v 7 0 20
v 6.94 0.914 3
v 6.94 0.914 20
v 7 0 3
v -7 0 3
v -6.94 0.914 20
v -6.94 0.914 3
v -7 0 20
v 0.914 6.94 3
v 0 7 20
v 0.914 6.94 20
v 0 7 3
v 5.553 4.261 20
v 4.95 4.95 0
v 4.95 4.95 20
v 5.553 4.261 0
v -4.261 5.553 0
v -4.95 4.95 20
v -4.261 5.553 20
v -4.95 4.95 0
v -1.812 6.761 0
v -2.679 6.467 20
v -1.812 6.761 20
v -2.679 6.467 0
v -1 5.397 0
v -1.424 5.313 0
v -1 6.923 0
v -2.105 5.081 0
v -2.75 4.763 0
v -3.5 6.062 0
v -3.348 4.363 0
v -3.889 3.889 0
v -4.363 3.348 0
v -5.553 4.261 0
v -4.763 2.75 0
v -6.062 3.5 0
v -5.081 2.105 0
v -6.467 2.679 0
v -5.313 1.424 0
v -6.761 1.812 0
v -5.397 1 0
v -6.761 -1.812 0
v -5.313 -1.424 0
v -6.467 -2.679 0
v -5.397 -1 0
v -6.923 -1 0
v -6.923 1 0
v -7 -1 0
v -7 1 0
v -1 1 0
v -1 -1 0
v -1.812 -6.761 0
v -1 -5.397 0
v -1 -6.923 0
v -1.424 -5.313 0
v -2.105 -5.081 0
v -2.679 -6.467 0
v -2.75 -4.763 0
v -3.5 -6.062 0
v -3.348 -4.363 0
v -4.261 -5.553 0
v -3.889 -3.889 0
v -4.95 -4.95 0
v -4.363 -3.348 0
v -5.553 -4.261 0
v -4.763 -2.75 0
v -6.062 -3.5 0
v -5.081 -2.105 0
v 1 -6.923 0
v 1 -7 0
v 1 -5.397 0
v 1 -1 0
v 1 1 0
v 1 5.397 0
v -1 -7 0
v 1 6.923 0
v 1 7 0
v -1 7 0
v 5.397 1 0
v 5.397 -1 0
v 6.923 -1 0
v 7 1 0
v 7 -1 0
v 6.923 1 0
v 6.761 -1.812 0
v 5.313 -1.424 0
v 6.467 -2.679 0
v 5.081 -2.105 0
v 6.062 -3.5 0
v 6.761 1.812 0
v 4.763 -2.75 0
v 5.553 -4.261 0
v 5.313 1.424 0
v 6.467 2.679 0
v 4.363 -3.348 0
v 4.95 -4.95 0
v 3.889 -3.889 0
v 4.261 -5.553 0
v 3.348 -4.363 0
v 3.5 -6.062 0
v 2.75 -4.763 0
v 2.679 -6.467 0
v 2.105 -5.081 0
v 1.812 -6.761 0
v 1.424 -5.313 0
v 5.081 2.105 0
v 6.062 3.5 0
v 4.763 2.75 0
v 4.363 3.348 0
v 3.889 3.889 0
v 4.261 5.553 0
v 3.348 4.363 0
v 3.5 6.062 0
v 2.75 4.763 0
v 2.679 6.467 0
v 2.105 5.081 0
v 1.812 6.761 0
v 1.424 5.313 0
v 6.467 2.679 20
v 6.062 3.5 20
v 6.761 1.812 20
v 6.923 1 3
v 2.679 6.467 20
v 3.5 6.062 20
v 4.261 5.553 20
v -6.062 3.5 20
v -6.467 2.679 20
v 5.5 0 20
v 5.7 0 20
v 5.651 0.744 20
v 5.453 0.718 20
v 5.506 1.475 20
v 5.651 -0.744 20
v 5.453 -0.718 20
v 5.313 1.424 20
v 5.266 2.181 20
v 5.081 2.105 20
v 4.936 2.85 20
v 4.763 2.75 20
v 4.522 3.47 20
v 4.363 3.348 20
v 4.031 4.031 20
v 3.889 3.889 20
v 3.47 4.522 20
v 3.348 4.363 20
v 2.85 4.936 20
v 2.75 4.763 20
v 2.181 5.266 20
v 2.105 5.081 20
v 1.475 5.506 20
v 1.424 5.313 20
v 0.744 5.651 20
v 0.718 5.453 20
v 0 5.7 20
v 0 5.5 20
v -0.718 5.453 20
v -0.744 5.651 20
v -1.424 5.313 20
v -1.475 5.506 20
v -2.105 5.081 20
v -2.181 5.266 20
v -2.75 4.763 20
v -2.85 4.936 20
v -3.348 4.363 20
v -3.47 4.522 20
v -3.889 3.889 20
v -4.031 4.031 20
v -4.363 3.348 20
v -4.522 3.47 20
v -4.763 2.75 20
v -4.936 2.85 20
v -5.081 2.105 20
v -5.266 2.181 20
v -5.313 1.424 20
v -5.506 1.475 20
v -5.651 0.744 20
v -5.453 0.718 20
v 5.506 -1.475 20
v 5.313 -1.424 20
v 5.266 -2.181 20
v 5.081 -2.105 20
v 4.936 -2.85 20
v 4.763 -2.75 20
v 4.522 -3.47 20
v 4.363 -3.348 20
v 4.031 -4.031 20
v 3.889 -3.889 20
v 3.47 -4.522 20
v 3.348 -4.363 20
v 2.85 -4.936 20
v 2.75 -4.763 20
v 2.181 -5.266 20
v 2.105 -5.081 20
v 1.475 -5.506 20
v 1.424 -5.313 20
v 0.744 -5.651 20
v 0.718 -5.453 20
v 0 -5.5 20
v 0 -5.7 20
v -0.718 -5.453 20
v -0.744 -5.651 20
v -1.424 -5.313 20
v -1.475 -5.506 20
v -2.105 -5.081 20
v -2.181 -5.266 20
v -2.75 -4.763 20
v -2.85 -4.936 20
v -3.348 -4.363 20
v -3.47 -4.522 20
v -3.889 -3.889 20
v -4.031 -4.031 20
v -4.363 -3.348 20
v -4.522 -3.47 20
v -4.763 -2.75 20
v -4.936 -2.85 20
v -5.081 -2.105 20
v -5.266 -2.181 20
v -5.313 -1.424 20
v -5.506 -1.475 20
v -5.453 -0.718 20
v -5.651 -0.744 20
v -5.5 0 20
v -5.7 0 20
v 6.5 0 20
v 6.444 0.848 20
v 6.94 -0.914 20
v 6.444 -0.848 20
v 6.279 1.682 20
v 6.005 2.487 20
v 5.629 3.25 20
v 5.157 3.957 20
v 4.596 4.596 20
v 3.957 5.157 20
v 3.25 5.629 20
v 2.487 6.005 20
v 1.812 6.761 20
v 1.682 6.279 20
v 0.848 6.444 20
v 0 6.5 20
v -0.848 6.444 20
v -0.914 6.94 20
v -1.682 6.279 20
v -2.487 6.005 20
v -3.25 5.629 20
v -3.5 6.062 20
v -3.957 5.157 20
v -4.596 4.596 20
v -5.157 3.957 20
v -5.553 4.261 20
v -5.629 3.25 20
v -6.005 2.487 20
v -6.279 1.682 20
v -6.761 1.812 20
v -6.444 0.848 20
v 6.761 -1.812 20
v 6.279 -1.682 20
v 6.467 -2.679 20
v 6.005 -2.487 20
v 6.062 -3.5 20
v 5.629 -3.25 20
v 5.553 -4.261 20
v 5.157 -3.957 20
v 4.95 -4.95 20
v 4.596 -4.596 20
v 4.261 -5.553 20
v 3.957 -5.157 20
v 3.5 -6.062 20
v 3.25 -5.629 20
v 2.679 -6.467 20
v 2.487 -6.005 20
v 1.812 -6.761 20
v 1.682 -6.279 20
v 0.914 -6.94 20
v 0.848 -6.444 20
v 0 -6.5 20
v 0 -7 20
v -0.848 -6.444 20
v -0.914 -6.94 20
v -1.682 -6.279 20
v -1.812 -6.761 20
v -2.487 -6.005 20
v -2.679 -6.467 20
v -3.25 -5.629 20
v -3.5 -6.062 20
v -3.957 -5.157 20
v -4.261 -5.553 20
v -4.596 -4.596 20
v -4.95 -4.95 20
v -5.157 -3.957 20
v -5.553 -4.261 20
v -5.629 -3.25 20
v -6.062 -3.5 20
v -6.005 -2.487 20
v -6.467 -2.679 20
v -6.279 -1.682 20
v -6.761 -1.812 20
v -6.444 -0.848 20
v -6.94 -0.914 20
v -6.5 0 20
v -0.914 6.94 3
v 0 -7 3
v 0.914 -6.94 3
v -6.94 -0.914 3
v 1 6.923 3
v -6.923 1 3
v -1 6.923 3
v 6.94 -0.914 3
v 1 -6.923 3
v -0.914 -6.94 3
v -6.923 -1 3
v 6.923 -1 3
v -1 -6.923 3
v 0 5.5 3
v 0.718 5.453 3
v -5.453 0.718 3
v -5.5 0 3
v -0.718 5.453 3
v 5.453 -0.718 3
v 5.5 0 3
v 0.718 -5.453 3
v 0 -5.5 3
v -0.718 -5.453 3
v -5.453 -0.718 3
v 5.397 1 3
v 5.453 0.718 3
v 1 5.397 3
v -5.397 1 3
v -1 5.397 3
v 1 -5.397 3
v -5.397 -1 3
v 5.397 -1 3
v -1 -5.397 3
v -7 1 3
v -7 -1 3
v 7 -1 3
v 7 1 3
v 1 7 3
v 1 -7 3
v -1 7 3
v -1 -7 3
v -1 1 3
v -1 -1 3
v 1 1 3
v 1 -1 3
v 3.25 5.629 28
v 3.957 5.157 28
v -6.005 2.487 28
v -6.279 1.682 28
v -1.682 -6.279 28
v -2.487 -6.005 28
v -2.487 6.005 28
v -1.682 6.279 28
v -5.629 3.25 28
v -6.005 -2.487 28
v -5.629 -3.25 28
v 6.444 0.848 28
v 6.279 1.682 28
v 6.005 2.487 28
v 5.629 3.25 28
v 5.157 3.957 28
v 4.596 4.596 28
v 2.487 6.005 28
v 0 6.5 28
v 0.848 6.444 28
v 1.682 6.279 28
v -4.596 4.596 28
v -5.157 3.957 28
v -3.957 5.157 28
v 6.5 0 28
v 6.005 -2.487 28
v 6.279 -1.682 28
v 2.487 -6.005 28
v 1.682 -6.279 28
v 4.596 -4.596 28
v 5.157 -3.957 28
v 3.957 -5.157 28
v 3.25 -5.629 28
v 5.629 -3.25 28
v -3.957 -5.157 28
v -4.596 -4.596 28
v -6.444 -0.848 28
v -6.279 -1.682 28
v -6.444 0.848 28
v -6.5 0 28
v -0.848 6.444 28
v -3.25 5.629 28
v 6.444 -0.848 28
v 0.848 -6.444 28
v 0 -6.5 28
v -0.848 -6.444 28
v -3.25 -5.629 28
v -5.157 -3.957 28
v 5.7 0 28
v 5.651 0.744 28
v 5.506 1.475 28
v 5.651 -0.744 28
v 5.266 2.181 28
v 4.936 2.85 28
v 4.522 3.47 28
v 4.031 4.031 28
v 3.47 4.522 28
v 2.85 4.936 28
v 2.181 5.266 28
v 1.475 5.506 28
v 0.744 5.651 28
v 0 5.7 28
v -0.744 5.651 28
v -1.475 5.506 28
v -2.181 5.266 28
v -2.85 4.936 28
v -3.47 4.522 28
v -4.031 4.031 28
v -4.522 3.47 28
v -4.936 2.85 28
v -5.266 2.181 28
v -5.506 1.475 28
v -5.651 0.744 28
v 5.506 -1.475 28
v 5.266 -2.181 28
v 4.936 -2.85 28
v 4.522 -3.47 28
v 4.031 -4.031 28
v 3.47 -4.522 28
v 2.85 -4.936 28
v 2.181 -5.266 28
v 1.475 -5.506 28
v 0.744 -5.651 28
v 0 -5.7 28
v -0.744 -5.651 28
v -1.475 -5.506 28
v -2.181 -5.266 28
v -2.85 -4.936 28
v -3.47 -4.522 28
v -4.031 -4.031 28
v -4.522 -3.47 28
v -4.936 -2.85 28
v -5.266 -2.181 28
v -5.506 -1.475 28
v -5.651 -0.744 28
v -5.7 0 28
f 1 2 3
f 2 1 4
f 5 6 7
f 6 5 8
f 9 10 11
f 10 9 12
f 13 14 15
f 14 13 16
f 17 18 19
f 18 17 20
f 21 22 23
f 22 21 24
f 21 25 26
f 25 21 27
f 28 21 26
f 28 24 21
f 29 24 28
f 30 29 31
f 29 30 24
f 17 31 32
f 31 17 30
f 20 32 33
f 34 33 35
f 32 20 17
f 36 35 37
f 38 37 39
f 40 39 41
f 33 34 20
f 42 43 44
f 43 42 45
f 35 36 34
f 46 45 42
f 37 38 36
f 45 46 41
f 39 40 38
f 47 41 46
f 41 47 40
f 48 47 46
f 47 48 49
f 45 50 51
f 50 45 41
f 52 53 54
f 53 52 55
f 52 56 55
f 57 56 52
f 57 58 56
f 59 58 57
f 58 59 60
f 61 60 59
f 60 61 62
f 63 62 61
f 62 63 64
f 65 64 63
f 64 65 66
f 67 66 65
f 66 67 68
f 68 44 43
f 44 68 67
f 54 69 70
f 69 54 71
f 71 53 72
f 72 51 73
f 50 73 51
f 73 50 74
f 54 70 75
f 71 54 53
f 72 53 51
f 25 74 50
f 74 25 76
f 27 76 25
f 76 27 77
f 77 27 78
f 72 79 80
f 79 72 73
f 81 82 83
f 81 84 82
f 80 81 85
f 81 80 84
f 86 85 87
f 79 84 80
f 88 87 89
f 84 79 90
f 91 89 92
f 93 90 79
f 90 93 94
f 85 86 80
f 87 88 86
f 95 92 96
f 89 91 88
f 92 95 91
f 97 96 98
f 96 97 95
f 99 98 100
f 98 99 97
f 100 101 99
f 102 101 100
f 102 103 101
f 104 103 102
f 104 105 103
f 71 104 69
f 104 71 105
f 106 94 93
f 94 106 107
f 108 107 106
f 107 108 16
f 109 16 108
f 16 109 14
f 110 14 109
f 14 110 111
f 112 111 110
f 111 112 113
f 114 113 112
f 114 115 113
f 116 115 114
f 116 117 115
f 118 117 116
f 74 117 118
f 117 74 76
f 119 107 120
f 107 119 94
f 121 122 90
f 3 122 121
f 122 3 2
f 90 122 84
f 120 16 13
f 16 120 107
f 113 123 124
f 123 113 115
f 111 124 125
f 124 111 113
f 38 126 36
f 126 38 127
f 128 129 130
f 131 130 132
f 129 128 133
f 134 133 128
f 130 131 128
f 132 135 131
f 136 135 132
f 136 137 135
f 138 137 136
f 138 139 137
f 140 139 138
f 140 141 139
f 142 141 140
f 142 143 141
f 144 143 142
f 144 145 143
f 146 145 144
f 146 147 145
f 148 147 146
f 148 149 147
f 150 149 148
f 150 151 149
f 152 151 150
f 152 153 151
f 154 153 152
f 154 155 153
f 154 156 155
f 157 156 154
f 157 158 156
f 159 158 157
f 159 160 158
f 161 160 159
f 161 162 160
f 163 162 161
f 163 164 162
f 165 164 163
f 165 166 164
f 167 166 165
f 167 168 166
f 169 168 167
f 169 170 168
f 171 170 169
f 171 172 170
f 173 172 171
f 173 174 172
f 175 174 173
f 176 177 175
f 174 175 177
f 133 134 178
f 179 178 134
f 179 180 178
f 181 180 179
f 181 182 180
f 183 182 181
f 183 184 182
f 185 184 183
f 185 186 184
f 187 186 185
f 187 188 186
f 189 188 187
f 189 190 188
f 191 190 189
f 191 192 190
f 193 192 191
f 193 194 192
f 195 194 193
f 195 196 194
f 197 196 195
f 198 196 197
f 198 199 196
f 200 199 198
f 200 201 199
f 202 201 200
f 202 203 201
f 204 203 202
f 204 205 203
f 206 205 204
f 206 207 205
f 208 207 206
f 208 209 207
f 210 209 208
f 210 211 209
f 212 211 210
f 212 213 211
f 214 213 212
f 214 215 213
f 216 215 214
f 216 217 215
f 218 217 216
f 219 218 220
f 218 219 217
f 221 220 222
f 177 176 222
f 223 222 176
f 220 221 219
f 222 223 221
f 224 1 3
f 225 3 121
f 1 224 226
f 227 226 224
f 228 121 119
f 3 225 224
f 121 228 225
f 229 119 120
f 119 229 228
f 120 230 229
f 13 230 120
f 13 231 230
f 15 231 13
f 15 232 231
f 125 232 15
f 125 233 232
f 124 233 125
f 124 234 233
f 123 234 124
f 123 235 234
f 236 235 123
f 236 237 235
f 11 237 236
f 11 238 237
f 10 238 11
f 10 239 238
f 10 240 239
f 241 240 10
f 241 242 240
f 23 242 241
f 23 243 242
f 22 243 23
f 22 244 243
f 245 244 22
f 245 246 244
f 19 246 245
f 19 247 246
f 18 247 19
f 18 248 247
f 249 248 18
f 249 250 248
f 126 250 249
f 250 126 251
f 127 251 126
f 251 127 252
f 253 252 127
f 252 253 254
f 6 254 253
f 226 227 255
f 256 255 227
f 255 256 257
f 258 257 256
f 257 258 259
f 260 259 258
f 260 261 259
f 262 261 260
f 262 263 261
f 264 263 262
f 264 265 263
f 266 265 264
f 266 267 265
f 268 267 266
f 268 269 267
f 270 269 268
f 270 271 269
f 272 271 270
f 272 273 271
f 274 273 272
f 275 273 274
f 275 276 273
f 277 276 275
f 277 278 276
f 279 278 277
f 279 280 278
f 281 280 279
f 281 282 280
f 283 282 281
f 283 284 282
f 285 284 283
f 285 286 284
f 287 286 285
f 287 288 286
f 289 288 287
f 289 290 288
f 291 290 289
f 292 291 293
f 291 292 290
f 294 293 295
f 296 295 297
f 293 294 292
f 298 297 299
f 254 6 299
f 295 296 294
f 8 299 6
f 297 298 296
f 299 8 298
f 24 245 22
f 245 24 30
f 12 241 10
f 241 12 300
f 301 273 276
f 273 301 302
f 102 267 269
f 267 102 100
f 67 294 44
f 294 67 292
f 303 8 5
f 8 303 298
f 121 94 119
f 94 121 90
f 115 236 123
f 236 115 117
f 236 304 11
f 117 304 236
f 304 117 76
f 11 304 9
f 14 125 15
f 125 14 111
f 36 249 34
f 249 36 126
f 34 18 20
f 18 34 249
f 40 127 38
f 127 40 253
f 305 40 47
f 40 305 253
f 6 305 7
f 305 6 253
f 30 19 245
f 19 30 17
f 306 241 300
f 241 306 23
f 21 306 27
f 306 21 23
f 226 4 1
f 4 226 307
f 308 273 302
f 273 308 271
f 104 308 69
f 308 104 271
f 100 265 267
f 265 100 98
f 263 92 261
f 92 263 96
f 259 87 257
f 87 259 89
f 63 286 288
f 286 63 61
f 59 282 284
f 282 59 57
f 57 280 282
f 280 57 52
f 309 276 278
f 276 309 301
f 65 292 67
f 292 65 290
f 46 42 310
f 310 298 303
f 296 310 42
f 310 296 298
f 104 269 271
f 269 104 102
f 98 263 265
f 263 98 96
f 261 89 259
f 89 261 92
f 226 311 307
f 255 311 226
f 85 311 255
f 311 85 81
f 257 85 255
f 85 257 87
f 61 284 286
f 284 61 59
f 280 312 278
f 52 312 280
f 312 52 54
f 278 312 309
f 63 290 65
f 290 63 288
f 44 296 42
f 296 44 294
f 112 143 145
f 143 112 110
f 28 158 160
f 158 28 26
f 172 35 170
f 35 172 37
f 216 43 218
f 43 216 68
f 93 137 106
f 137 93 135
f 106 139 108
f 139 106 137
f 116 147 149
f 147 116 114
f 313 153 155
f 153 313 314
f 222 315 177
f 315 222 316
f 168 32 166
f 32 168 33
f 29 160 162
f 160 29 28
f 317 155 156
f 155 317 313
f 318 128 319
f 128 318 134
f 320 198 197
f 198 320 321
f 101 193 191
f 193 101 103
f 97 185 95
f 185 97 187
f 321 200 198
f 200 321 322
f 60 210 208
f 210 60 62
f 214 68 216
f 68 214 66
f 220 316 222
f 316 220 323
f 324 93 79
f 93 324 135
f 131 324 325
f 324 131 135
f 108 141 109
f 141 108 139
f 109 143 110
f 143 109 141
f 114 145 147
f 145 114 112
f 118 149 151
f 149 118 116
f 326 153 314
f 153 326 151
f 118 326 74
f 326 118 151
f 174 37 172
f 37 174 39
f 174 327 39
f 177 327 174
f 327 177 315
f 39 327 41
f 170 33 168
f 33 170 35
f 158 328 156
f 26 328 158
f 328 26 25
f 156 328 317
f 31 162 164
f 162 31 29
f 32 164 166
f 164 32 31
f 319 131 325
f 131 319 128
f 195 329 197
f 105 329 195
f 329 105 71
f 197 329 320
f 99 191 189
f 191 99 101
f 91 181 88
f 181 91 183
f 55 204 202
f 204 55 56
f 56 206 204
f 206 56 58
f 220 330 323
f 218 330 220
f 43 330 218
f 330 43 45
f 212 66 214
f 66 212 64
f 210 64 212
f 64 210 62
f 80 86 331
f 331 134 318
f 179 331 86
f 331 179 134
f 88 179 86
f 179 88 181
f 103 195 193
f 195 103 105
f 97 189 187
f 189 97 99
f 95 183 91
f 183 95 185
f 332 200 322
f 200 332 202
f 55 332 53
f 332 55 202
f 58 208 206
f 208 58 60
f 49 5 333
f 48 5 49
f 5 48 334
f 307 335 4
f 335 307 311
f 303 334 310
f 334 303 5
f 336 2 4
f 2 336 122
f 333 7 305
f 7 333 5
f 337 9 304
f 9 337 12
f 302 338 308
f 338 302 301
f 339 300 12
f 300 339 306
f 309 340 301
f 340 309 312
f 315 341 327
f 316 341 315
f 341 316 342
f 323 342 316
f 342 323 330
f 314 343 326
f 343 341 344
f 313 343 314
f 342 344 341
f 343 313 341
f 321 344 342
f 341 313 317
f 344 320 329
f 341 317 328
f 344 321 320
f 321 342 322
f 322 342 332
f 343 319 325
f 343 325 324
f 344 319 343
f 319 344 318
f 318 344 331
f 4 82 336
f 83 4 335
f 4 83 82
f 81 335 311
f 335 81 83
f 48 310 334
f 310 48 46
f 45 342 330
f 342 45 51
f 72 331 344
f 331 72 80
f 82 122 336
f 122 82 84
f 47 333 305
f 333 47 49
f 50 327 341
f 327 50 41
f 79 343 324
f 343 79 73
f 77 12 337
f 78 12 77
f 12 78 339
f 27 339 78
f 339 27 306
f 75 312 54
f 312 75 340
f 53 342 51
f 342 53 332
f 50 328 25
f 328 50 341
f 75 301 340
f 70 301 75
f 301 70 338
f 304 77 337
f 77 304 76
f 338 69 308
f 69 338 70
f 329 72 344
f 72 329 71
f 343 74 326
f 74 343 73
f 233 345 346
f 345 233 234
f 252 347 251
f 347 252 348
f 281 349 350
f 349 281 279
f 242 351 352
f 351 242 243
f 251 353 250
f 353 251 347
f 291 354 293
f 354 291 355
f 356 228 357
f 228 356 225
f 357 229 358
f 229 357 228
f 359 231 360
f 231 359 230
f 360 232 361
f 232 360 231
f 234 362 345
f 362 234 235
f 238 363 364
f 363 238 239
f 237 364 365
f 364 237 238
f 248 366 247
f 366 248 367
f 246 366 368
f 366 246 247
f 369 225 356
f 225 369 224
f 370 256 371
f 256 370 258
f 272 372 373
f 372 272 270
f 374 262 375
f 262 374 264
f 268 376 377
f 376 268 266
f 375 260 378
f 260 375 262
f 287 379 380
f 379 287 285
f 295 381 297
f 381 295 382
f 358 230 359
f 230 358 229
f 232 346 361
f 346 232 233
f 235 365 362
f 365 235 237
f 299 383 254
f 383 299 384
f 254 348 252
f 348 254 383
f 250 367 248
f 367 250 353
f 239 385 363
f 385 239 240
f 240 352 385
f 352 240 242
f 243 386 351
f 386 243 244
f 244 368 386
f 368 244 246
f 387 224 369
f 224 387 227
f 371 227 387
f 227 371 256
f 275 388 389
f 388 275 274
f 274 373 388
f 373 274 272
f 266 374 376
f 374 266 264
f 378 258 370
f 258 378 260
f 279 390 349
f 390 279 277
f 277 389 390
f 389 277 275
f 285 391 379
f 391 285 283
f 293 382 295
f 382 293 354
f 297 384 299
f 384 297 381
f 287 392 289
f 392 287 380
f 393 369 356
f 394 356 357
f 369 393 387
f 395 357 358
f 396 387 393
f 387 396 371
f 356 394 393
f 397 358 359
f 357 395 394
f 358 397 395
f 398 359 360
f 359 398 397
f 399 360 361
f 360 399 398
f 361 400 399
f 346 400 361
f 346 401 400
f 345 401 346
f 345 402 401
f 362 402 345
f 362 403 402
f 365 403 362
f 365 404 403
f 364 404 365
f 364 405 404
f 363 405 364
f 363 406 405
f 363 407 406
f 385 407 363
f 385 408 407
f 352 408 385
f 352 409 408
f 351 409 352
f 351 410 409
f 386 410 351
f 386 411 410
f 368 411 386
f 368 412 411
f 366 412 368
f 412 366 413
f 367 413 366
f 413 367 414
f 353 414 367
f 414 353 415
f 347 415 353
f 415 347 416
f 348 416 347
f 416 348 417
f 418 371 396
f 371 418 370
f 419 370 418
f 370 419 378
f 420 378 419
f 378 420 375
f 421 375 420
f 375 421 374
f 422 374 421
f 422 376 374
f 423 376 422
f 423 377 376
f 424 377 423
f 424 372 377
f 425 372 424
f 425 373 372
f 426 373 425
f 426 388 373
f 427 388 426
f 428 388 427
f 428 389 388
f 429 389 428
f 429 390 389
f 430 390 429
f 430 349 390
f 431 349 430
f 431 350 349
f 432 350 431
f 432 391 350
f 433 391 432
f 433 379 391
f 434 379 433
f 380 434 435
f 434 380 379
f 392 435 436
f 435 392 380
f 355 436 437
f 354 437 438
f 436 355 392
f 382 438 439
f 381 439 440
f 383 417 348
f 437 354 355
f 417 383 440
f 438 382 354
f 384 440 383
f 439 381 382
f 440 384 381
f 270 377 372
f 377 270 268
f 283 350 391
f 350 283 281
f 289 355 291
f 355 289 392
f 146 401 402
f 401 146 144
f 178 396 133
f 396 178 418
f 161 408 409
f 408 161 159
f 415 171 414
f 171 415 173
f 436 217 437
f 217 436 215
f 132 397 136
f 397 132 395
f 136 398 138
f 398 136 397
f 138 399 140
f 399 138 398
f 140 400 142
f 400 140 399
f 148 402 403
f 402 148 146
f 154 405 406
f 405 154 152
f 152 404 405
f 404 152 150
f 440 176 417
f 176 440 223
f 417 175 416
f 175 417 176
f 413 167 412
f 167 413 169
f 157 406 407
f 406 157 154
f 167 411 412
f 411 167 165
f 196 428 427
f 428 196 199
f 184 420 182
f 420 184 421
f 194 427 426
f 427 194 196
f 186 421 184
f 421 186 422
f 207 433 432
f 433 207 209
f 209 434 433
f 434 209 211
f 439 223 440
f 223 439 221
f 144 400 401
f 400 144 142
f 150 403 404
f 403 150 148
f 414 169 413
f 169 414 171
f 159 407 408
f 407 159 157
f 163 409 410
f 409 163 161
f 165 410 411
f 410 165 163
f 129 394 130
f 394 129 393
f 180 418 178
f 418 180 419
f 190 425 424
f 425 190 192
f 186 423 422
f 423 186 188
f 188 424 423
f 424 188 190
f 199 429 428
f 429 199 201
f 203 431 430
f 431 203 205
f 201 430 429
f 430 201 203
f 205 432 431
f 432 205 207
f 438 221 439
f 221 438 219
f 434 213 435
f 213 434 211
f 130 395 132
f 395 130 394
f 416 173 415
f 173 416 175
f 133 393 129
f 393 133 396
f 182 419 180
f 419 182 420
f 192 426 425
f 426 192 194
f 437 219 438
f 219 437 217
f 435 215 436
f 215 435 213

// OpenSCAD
// file: ../components/accessories_001.scad
// ============================================================================
// accessories_001.scad — Phụ kiện: lưới lọc thô + ống silicone + bơm RS365
// ----------------------------------------------------------------------------
// - prescreen(): lưới lọc thô khe >5mm cắm ĐẦU NGUỒN (chỉ chặn rác to lá/cành,
//   KHÔNG lọc mất hạt 1–5mm cần đo). Chi tiết in nhỏ, nối tiếp ống vào.
// - silicone_tube(): mô phỏng ống ID8/OD11 (G4: trùm ngạnh OD8) — đi dây assembly.
// - pump_rs365(): PLACEHOLDER bơm màng RS365 12V MUA SẴN (bbox ~90×40×35 + 2 ngạnh
//   OD8). Chỉ để bố trí trạm bơm TÁCH RỜI (cách rung) — KHÔNG in, KHÔNG chi tiết.
// ============================================================================
include <../constants.scad>

// Lưới lọc thô: ống lồng Ø14 dài 20, đầu vào chia khe 6mm bởi 2 gân chữ thập
module prescreen() {
    color(col_plastic) {
        difference() {
            cylinder(d = 14, h = 20, $fn = 48);
            translate([0, 0, -0.5]) cylinder(d = 11, h = 21, $fn = 48);
        }
        // Chữ thập chắn ở miệng (tạo khe ~6mm > 5mm — hạt đo lọt, rác to bị chặn)
        for (a = [0, 90])
            rotate([0, 0, a]) translate([-7, -1, 0]) cube([14, 2, 3]);
        // Cổ nối trùm ngạnh/ống
        translate([0, 0, 20]) difference() {
            cylinder(d = sil_tube_od + 2, h = 8, $fn = 48);
            translate([0, 0, -0.5]) cylinder(d = sil_tube_od + 2*tol, h = 9, $fn = 48);
        }
    }
}

// Ống silicone (mô phỏng đoạn thẳng; assembly có thể xếp nhiều đoạn gấp khúc)
module silicone_tube(len = 60) {
    color([0.95, 0.95, 0.95, 0.55]) difference() {
        cylinder(d = sil_tube_od, h = len, $fn = 48);
        translate([0, 0, -0.5]) cylinder(d = sil_tube_id, h = len + 1, $fn = 48);
    }
}

// Bơm màng RS365 (placeholder): thân hộp + motor trụ + 2 ngạnh OD8 một đầu
module pump_rs365() {
    L = pump_bbox[0]; W = pump_bbox[1]; H = pump_bbox[2];
    // Đầu bơm màng (hộp)
    color(col_plastic) translate([-L/2, -W/2, 0]) cube([L*0.45, W, H]);
    // Thân motor RS365 (trụ)
    color(col_metal) translate([-L/2 + L*0.45, 0, H/2])
        rotate([0, 90, 0]) cylinder(d = H*0.9, h = L*0.55, $fn = 64);
    // 2 ngạnh vào/ra (OD8) trên đầu bơm
    color(col_plastic) for (sy = [1, -1])
        translate([-L/2 - 8, sy * W/4, H*0.6])
            rotate([0, 90, 0]) cylinder(d = pump_barb_od, h = 10, $fn = 32);
}

// Xem lẻ
prescreen();
translate([40, 0, 0]) silicone_tube();
translate([130, 0, 0]) pump_rs365();
// main file
// print_prescreen.scad — Lưới lọc thô >5mm đầu nguồn (1 chi tiết in nhỏ).
// In đứng như dùng (miệng chữ thập xuống bàn).
include <../constants.scad>
use <../components/accessories_001.scad>

prescreen();
